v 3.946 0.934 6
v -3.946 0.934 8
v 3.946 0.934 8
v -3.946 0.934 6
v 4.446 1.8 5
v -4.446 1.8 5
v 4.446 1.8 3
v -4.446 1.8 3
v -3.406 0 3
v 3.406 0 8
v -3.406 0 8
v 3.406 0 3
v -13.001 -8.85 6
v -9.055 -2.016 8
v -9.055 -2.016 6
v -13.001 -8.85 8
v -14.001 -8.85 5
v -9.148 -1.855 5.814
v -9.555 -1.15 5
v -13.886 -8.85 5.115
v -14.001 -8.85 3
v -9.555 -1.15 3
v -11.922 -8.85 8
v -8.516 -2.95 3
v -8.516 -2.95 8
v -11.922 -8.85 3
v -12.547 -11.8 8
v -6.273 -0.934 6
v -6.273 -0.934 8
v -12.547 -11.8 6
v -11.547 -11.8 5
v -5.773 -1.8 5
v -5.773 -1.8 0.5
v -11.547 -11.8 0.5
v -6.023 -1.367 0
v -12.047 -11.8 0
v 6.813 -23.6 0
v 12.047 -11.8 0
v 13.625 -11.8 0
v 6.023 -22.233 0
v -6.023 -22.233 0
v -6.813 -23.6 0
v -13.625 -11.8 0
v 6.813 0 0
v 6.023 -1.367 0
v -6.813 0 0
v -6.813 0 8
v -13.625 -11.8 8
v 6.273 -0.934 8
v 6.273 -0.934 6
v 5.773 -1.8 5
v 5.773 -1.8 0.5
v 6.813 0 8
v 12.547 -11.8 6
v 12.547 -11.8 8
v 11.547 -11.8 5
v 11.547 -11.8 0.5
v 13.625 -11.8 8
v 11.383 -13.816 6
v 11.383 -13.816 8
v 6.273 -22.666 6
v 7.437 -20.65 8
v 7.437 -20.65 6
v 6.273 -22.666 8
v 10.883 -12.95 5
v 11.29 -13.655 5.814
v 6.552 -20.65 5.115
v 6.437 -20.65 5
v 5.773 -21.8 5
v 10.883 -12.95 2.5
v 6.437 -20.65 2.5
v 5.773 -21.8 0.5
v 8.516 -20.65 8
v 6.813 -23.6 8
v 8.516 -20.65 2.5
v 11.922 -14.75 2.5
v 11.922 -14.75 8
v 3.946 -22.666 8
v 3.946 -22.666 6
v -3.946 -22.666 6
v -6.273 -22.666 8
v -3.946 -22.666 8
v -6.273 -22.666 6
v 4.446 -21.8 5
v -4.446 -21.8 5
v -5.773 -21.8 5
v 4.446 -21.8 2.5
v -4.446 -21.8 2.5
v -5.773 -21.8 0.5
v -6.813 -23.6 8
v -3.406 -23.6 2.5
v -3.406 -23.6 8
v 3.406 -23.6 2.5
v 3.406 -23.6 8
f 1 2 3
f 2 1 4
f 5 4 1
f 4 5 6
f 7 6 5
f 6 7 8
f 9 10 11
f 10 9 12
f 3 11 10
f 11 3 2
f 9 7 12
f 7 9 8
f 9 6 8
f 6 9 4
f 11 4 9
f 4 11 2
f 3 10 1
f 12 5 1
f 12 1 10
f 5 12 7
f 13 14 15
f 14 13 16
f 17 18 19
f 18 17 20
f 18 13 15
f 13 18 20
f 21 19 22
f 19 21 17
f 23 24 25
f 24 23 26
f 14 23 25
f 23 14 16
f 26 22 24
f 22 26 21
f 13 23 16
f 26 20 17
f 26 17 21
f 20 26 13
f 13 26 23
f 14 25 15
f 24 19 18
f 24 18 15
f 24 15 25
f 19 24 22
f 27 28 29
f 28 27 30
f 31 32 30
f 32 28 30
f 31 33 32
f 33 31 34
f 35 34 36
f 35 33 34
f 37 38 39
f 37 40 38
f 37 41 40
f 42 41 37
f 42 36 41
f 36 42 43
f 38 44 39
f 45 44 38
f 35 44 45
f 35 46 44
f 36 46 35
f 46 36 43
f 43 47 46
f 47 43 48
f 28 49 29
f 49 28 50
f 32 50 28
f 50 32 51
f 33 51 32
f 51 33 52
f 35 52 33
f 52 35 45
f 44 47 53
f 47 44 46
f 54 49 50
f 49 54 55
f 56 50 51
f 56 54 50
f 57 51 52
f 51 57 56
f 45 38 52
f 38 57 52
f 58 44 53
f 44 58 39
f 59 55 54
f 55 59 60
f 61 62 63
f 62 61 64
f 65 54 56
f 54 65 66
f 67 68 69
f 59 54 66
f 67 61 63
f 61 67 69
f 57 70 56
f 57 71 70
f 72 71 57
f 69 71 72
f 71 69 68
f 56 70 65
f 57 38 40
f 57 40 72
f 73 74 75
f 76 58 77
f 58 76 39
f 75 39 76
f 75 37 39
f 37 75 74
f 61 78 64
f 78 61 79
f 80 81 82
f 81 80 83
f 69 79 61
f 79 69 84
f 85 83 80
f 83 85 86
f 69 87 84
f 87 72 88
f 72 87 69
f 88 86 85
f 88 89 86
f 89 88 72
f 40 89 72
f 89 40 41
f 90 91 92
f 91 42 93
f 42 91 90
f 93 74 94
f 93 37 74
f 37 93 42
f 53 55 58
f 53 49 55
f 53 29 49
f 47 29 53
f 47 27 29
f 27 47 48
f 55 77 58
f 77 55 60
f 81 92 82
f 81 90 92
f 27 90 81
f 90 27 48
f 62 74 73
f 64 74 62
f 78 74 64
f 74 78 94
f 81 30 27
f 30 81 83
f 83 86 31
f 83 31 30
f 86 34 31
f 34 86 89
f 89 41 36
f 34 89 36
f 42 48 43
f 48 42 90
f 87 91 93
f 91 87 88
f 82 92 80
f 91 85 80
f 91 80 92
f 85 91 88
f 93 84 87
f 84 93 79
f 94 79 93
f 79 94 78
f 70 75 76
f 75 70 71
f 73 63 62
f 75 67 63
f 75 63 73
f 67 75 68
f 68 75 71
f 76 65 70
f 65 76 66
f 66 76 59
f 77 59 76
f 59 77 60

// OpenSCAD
// file: honeycomb_element.scad
$fn = 50;

radius = 13.6;
diameter = radius * 2;

h_inner = 10;
r_inner = h_inner * 2 / sqrt(3);

h_outer = 10 + 1.8;
r_outer = h_outer * 2 / sqrt(3);

h_thin = 10 + 1;
r_thin = h_thin * 2 / sqrt(3);

total_height = 8;

small_value = 0.1;

clips_height = 5;
clips_offset = 0.5;
clips_side_offset = 0.00;

module basic_polygon() {
  polygon(
    [
      [r_outer, total_height],
      [r_outer, 0],
      [r_inner + 0.5, 0],
      [r_inner, 0.5],
      [r_inner, total_height - 3],
      [r_inner + 1, total_height - 2],
      [r_inner + 1, total_height],
    ]
  );
}

module basic_model() {
  rotate_extrude($fn=6) {
    basic_polygon();
  }
}

module panel_with_clips(pin_1 = false, pin_2 = false, pin_3 = false, pin_4 = false, pin_5 = false, pin_6 = false, slot_1 = false, slot_2 = false, slot_3 = false, slot_4 = false, slot_5 = false, slot_6 = false) {

  difference() {
    basic_model();

    if (slot_1) {
      rotate([0, 0, 0])
        translate([0, -h_outer * 2, total_height - (clips_height + clips_offset) / 2])
          linear_extrude(height=clips_height + clips_offset, center=true)
            polygon([[clips_side_offset, h_outer / 2], [-clips_side_offset, h_outer / 2], [-r_outer / 2 - clips_side_offset, h_outer * 1.5], [r_outer / 2 + clips_side_offset, h_outer * 1.5]]);
    }

    if (slot_2) {
      rotate([0, 0, 60])
        translate([0, -h_outer * 2, total_height - (clips_height + clips_offset) / 2])
          linear_extrude(height=clips_height + clips_offset, center=true)
            polygon([[clips_side_offset, h_outer / 2], [-clips_side_offset, h_outer / 2], [-r_outer / 2 - clips_side_offset, h_outer * 1.5], [r_outer / 2 + clips_side_offset, h_outer * 1.5]]);
    }

    if (slot_3) {
      rotate([0, 0, 120])
        translate([0, -h_outer * 2, total_height - (clips_height + clips_offset) / 2])
          linear_extrude(height=clips_height + clips_offset, center=true)
            polygon([[clips_side_offset, h_outer / 2], [-clips_side_offset, h_outer / 2], [-r_outer / 2 - clips_side_offset, h_outer * 1.5], [r_outer / 2 + clips_side_offset, h_outer * 1.5]]);
    }

    if (slot_4) {
      rotate([0, 0, 180])
        translate([0, -h_outer * 2, total_height - (clips_height + clips_offset) / 2])
          linear_extrude(height=clips_height + clips_offset, center=true)
            polygon([[clips_side_offset, h_outer / 2], [-clips_side_offset, h_outer / 2], [-r_outer / 2 - clips_side_offset, h_outer * 1.5], [r_outer / 2 + clips_side_offset, h_outer * 1.5]]);
    }

    if (slot_5) {
      rotate([0, 0, 240])
        translate([0, -h_outer * 2, total_height - (clips_height + clips_offset) / 2])
          linear_extrude(height=clips_height + clips_offset, center=true)
            polygon([[clips_side_offset, h_outer / 2], [-clips_side_offset, h_outer / 2], [-r_outer / 2 - clips_side_offset, h_outer * 1.5], [r_outer / 2 + clips_side_offset, h_outer * 1.5]]);
    }

    if (slot_6) {
      rotate([0, 0, 300])
        translate([0, -h_outer * 2, total_height - (clips_height + clips_offset) / 2])
          linear_extrude(height=clips_height + clips_offset, center=true)
            polygon([[clips_side_offset, h_outer / 2], [-clips_side_offset, h_outer / 2], [-r_outer / 2 - clips_side_offset, h_outer * 1.5], [r_outer / 2 + clips_side_offset, h_outer * 1.5]]);
    }
  }

  if (pin_1) {
    intersection() {
      translate([0, -h_outer * 2, 0])
        basic_model();
      translate([0, 0, total_height - clips_height / 2]) {
        rotate([0, 0, -180])
          linear_extrude(height=clips_height, center=true)
            polygon([[0, h_outer / 2], [-r_outer / 2, h_outer * 1.5], [r_outer / 2, h_outer * 1.5]]);
      }
    }
  }

  if (pin_2) {
    intersection() {
      translate([r_outer * 1.5, -h_outer, 0])
        basic_model();
      translate([0, 0, total_height - clips_height / 2]) {
        rotate([0, 0, -120])
          linear_extrude(height=clips_height, center=true)
            polygon([[0, h_outer / 2], [-r_outer / 2, h_outer * 1.5], [r_outer / 2, h_outer * 1.5]]);
      }
    }
  }

  if (pin_3) {
    intersection() {
      translate([r_outer * 1.5, h_outer, 0])
        basic_model();
      translate([0, 0, total_height - clips_height / 2]) {
        rotate([0, 0, -60])
          linear_extrude(height=clips_height, center=true)
            polygon([[0, h_outer / 2], [-r_outer / 2, h_outer * 1.5], [r_outer / 2, h_outer * 1.5]]);
      }
    }
  }

  if (pin_4) {
    intersection() {
      translate([0, h_outer * 2, 0])
        basic_model();

      translate([0, 0, total_height - clips_height / 2]) {
        linear_extrude(height=clips_height, center=true)
          polygon([[0, h_outer / 2], [-r_outer / 2, h_outer * 1.5], [r_outer / 2, h_outer * 1.5]]);
      }
    }
  }

  if (pin_5) {
    intersection() {
      translate([-r_outer * 1.5, h_outer, 0])
        basic_model();
      translate([0, 0, total_height - clips_height / 2]) {
        rotate([0, 0, 60])
          linear_extrude(height=clips_height, center=true)
            polygon([[0, h_outer / 2], [-r_outer / 2, h_outer * 1.5], [r_outer / 2, h_outer * 1.5]]);
      }
    }
  }

  if (pin_6) {
    intersection() {
      translate([-r_outer * 1.5, -h_outer, 0])
        basic_model();

      translate([0, 0, total_height - clips_height / 2]) {
        rotate([0, 0, 120])
          linear_extrude(height=clips_height, center=true)
            polygon([[0, h_outer / 2], [-r_outer / 2, h_outer * 1.5], [r_outer / 2, h_outer * 1.5]]);
      }
    }
  }
}

// end honeycomb_element.scad
// main file
$fn = 50;

h_outer = 10+1.8;
r_outer = h_outer * 2/sqrt(3);


use <honeycomb_element.scad>;

module perimeter_top_item(left_slot=false,top_slot=false) {
  translate([-r_outer*0, -h_outer, 0])
     panel_with_clips(slot_1=true, slot_2=true, pin_5=true, pin_4=true);   
  

    
}




module perimeter_bottom() {
    perimeter_top_item(left_slot=true,top_slot=true);

}



perimeter_bottom();
